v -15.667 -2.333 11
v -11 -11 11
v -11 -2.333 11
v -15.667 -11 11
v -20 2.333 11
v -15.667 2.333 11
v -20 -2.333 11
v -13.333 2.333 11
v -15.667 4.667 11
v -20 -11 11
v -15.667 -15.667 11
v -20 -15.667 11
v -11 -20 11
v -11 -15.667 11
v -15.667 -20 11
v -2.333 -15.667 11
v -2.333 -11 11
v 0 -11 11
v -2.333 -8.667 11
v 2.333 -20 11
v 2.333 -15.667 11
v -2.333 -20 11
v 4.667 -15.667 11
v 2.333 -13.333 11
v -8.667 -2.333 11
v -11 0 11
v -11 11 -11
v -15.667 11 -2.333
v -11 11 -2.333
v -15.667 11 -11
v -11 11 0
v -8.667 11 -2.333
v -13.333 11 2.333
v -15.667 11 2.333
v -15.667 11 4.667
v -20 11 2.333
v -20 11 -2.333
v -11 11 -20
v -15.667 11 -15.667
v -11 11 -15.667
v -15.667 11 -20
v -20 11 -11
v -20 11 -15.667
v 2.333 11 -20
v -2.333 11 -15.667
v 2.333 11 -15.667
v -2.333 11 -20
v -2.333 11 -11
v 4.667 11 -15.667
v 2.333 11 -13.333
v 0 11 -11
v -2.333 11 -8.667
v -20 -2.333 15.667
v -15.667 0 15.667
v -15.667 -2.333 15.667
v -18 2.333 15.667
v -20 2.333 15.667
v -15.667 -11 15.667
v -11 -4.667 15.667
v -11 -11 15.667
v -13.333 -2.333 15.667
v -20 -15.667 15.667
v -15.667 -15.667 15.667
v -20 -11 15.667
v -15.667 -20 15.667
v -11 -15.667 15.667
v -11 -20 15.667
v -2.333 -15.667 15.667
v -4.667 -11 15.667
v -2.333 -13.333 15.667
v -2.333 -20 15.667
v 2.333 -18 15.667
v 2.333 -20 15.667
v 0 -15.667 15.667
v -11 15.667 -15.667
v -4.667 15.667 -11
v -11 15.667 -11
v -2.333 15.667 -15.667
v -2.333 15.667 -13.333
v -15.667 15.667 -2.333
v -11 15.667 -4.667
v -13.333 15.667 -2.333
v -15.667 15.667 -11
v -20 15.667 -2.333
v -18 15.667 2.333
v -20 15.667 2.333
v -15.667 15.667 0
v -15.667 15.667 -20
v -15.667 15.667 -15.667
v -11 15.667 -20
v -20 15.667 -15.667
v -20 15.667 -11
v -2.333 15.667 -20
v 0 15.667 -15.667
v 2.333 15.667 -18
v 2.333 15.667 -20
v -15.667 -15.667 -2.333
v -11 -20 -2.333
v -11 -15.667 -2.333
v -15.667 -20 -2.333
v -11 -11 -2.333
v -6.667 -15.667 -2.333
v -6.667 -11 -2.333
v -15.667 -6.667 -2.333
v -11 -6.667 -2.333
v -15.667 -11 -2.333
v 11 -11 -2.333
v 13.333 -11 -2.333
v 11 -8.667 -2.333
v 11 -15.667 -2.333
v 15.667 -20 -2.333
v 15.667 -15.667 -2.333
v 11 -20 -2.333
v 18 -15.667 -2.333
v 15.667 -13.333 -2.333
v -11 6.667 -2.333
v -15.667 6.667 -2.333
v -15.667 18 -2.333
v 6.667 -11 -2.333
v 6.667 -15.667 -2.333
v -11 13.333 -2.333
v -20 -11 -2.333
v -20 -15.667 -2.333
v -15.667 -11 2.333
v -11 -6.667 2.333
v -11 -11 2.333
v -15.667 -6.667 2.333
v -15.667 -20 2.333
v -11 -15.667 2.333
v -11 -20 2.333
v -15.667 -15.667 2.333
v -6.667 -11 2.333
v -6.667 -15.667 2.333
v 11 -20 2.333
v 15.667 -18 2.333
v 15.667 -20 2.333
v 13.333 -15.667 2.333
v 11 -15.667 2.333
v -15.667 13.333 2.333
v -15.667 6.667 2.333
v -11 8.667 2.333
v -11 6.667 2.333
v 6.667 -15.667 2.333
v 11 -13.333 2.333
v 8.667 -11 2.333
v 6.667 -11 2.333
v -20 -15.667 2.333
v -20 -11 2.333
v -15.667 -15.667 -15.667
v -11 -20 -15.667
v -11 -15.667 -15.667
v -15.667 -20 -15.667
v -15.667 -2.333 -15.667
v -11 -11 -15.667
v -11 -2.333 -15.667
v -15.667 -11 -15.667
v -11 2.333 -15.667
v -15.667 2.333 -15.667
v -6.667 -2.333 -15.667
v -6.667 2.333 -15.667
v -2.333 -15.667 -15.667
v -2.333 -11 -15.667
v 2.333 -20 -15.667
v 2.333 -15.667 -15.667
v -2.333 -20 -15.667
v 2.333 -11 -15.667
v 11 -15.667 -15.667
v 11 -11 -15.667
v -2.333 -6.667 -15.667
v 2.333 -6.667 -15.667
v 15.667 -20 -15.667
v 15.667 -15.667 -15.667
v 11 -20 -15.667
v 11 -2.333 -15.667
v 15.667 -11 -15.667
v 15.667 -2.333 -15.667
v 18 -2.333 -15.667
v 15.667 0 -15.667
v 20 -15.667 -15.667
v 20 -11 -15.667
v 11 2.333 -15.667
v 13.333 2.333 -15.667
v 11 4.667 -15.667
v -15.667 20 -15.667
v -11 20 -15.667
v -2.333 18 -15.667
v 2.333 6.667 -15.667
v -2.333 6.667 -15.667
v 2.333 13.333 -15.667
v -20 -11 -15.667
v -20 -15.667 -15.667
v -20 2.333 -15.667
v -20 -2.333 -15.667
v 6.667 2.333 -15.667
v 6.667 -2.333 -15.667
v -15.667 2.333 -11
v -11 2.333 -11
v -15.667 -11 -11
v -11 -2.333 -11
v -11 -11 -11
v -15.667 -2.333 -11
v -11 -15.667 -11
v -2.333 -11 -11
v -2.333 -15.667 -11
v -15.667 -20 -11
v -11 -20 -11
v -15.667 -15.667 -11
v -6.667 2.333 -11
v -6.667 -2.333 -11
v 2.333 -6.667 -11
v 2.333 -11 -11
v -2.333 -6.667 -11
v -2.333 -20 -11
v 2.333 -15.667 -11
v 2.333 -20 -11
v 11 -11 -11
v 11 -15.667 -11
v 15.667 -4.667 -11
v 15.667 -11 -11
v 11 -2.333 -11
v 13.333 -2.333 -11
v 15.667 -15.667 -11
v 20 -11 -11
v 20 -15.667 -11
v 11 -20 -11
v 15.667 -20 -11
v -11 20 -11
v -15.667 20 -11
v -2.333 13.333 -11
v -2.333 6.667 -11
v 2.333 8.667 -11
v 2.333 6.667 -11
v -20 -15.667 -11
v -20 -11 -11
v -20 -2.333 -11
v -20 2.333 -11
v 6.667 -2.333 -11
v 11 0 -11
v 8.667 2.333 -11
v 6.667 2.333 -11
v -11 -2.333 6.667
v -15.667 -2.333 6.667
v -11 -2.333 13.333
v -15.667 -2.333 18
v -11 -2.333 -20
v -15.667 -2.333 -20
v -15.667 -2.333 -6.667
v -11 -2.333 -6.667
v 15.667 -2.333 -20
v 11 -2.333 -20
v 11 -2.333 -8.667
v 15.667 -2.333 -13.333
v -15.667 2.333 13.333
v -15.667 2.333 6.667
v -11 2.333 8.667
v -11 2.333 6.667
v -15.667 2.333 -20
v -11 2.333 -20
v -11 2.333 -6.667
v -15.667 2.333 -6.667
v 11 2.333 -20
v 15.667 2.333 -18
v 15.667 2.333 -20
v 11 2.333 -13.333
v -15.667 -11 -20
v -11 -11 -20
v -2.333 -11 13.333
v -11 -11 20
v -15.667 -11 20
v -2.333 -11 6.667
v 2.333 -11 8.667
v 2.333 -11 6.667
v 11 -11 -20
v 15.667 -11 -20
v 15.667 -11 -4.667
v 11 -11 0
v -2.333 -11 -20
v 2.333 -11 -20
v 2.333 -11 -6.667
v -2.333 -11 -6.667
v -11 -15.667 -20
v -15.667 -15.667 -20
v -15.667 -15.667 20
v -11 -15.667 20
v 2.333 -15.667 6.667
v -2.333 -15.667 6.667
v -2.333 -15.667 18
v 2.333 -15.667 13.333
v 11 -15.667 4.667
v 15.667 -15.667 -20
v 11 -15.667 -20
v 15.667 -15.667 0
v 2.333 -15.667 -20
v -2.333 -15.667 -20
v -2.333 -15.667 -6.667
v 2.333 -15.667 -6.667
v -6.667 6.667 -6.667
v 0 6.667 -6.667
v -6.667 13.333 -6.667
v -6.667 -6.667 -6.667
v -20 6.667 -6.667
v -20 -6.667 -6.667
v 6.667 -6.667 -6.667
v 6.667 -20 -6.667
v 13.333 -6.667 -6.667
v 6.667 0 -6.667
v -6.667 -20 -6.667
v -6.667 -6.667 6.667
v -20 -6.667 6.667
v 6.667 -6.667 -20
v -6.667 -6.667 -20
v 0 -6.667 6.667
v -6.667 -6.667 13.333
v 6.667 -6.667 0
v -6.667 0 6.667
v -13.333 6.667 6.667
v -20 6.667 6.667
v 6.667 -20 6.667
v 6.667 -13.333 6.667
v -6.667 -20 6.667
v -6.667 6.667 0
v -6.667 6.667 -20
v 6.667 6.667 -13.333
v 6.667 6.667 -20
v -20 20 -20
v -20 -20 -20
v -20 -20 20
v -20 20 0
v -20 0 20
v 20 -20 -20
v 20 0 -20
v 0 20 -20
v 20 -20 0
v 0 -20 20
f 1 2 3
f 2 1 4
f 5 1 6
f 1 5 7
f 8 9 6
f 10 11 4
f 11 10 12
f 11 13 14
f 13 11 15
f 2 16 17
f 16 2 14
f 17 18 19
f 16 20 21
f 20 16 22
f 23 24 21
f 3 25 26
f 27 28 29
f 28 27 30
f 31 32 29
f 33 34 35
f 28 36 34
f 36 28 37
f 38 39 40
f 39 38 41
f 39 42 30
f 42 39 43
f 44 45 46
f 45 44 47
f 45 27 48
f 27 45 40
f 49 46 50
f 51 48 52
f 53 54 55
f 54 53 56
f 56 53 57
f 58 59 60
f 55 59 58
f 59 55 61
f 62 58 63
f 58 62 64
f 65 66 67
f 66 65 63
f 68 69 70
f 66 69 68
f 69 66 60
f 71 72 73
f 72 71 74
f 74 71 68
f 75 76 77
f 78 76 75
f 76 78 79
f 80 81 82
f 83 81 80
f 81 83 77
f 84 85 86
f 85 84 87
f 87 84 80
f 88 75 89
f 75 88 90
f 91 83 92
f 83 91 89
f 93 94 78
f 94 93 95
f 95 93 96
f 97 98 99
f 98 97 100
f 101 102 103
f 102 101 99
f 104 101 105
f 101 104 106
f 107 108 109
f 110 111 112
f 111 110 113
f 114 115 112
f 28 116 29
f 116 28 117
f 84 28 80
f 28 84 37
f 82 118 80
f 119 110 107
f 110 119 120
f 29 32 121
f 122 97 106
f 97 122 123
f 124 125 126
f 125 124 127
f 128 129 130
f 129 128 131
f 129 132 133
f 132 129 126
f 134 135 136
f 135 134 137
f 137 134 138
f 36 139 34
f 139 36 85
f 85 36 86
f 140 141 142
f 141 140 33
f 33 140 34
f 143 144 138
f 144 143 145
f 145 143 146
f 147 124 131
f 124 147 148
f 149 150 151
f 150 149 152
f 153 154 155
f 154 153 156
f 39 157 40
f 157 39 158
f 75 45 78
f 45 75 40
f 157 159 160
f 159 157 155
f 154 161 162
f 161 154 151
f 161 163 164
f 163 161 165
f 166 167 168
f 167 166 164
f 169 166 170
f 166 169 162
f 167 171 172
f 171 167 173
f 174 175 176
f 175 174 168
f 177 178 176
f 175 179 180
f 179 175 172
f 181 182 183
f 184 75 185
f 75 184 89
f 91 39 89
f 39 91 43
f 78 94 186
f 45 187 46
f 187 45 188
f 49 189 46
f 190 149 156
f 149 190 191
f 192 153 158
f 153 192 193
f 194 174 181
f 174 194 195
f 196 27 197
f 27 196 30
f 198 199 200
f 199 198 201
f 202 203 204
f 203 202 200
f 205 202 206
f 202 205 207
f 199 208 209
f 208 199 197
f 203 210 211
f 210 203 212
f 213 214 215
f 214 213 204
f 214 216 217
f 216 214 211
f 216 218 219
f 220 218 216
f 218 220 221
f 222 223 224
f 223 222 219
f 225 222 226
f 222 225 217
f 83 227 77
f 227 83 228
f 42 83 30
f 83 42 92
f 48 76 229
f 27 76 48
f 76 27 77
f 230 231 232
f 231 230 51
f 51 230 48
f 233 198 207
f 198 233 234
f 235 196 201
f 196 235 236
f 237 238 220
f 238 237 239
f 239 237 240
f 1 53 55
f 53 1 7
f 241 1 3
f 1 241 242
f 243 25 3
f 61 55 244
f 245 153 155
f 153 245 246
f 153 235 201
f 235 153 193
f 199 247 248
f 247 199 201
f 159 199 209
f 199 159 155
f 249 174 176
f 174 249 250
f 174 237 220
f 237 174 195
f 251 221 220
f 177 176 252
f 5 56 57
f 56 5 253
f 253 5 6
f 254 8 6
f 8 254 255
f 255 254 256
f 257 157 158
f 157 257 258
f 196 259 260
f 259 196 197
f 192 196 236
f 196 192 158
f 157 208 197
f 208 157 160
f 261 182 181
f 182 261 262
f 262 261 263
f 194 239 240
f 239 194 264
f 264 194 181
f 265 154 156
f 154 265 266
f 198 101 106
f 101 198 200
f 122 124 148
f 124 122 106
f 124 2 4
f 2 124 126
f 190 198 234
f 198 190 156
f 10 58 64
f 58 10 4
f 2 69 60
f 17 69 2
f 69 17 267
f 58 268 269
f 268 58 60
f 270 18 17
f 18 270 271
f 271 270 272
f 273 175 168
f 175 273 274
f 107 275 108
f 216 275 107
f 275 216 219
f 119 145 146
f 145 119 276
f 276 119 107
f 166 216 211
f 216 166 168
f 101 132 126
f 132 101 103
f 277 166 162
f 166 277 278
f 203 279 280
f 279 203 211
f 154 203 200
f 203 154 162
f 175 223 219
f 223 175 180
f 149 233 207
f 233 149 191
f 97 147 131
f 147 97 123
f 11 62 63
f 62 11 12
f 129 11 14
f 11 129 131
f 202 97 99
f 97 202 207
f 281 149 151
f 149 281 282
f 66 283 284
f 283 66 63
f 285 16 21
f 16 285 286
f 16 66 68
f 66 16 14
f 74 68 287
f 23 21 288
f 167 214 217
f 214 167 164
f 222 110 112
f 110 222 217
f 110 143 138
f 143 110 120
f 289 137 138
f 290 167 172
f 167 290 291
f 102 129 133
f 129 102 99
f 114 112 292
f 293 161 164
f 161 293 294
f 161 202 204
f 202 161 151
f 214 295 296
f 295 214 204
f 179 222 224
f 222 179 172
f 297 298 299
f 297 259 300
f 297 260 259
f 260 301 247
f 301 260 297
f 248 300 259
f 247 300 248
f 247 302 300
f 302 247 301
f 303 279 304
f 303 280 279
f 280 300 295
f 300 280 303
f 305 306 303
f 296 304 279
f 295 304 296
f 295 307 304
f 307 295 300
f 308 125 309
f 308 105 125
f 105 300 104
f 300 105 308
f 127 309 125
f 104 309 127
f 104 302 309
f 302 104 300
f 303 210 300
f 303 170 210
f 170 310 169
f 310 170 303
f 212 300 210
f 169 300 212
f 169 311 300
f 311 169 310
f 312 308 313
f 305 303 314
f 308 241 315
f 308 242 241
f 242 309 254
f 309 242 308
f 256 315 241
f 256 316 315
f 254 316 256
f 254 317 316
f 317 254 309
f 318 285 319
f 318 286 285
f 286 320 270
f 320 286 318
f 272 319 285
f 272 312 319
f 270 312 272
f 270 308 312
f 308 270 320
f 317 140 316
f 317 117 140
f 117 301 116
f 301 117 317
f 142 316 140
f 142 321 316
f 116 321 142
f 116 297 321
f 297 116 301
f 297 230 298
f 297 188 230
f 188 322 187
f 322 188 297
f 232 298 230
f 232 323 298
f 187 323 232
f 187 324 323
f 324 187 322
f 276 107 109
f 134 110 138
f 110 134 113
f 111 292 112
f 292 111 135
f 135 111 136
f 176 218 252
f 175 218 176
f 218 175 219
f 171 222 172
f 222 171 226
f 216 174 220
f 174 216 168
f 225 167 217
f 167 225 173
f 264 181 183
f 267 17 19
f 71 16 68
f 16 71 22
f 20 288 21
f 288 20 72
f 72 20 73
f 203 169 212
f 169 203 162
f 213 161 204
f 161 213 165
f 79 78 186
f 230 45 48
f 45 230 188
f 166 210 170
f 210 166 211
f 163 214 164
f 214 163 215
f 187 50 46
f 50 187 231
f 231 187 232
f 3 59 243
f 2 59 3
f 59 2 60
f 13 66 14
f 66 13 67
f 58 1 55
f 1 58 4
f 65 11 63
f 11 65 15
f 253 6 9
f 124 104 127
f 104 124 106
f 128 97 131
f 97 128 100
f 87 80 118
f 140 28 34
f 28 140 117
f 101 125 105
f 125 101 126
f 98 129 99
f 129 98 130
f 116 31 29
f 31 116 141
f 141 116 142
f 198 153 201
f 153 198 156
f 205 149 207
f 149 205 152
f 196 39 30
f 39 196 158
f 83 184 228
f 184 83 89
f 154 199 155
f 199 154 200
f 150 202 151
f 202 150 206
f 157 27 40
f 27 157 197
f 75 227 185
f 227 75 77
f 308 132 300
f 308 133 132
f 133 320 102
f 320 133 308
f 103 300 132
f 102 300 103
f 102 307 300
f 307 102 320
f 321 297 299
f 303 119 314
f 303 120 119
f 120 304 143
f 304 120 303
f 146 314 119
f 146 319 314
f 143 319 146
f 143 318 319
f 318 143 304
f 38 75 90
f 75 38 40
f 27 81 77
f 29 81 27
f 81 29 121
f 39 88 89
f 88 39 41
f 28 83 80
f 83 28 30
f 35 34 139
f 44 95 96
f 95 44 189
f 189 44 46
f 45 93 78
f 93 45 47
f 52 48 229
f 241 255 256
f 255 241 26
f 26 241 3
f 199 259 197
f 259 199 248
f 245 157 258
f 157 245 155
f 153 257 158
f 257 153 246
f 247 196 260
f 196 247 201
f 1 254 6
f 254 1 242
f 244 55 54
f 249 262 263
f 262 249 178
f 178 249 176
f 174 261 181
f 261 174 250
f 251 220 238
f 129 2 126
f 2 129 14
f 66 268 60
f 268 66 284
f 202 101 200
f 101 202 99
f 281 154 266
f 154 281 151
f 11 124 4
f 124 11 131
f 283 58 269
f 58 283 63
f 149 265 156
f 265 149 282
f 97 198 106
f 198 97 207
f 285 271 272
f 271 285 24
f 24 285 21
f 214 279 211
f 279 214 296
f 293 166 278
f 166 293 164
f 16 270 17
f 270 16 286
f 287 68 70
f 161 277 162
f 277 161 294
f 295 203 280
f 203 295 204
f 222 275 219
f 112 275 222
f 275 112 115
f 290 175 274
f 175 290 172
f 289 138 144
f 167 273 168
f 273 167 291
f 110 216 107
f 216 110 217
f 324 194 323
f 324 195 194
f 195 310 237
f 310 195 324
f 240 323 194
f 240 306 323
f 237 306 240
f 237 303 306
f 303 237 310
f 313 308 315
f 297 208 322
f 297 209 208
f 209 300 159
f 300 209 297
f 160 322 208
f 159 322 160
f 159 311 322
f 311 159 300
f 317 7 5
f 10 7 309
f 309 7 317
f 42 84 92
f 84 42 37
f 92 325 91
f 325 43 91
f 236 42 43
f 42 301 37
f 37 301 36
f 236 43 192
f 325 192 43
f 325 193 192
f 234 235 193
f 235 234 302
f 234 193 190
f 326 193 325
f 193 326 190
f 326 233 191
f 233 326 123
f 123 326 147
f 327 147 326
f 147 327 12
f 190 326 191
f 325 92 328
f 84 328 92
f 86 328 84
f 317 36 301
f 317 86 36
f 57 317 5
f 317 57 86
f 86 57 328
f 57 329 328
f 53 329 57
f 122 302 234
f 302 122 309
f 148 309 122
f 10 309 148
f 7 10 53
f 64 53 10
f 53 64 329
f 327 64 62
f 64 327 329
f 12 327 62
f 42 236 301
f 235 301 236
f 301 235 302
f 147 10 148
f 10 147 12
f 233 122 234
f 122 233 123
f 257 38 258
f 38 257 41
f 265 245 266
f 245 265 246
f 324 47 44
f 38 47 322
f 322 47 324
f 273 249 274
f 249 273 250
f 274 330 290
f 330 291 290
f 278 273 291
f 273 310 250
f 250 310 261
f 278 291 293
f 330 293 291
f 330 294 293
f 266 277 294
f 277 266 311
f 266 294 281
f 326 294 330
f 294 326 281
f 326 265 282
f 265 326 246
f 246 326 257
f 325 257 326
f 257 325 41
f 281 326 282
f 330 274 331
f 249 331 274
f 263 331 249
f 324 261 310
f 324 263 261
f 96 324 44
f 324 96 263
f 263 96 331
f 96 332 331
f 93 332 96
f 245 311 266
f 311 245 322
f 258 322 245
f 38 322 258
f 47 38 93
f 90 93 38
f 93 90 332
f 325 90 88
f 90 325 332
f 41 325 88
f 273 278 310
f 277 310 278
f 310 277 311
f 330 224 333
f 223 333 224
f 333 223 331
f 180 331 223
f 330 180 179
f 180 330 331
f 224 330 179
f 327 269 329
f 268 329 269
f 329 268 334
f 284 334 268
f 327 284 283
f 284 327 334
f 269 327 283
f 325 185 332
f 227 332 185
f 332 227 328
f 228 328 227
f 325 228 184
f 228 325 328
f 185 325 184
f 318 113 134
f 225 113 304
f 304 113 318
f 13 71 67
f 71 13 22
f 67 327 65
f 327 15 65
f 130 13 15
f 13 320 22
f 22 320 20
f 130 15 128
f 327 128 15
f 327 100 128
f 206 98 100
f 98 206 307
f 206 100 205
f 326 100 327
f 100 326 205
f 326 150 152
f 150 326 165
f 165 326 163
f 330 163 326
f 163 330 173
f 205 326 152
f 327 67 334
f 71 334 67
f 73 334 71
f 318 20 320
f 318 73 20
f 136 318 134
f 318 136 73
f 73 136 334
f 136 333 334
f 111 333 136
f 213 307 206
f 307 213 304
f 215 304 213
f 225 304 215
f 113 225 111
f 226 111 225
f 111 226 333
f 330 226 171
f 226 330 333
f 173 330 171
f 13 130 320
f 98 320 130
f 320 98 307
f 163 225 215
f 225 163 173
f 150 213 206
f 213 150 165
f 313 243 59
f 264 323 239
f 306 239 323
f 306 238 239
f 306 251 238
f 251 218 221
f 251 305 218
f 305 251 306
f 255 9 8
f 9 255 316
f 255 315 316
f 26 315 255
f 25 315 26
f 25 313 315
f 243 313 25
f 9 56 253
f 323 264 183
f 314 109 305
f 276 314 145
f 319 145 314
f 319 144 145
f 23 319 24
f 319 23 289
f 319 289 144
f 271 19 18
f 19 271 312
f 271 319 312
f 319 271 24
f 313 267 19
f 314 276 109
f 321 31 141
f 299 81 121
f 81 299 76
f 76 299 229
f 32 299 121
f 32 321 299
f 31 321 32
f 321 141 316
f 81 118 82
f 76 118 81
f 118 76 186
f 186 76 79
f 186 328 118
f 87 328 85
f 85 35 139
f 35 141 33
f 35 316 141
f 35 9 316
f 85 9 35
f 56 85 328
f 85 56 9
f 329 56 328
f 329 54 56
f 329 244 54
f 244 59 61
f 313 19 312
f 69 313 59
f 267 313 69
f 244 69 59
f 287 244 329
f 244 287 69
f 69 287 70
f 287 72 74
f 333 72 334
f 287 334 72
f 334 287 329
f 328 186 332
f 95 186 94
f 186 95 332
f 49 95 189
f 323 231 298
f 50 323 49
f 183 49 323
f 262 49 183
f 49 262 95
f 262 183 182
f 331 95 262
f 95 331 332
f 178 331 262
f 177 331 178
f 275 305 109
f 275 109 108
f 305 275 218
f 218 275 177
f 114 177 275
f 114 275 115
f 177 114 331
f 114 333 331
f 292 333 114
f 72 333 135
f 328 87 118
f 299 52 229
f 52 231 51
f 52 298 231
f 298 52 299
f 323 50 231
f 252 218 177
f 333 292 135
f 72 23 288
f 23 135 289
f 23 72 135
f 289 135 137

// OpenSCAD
// Menger Sponge

// Size of edge of sponge
D=40;
// Fractal depth (number of iterations)
n=2;

echo(version=version());

module menger() {
  difference() {
    cube(D, center=true);
    for (v=[[0,0,0], [0,0,90], [0,90,0]])
      rotate(v) menger_negative(side=D, maxside=D, level=n);
  }
}

module menger_negative(side=1, maxside=1, level=1) {
  l=side/3;
  cube([maxside*1.1, l, l], center=true);
  if (level > 1) {
    for (i=[-1:1], j=[-1:1])
      if (i || j)
        translate([0, i*l, j*l])
          menger_negative(side=l*1.05, maxside=maxside, level=level-1);
  }
}

rotate([-180, 0, 0])
rotate([-45, 0, 0])
rotate([0, -atan(1/sqrt(2)), 0])
difference() {
  rotate([45, atan(1/sqrt(2)), 0]) menger();
  translate([0,0,-D]) cube(2*D, center=true);
}

// Written by Nathan Hellweg, Emmett Lalish and Marius Kintel May 13, 2013
//
// To the extent possible under law, the author(s) have dedicated all
// copyright and related and neighboring rights to this software to the
// public domain worldwide. This software is distributed without any
// warranty.
//
// You should have received a copy of the CC0 Public Domain
// Dedication along with this software.
// If not, see <http://creativecommons.org/publicdomain/zero/1.0/>.
